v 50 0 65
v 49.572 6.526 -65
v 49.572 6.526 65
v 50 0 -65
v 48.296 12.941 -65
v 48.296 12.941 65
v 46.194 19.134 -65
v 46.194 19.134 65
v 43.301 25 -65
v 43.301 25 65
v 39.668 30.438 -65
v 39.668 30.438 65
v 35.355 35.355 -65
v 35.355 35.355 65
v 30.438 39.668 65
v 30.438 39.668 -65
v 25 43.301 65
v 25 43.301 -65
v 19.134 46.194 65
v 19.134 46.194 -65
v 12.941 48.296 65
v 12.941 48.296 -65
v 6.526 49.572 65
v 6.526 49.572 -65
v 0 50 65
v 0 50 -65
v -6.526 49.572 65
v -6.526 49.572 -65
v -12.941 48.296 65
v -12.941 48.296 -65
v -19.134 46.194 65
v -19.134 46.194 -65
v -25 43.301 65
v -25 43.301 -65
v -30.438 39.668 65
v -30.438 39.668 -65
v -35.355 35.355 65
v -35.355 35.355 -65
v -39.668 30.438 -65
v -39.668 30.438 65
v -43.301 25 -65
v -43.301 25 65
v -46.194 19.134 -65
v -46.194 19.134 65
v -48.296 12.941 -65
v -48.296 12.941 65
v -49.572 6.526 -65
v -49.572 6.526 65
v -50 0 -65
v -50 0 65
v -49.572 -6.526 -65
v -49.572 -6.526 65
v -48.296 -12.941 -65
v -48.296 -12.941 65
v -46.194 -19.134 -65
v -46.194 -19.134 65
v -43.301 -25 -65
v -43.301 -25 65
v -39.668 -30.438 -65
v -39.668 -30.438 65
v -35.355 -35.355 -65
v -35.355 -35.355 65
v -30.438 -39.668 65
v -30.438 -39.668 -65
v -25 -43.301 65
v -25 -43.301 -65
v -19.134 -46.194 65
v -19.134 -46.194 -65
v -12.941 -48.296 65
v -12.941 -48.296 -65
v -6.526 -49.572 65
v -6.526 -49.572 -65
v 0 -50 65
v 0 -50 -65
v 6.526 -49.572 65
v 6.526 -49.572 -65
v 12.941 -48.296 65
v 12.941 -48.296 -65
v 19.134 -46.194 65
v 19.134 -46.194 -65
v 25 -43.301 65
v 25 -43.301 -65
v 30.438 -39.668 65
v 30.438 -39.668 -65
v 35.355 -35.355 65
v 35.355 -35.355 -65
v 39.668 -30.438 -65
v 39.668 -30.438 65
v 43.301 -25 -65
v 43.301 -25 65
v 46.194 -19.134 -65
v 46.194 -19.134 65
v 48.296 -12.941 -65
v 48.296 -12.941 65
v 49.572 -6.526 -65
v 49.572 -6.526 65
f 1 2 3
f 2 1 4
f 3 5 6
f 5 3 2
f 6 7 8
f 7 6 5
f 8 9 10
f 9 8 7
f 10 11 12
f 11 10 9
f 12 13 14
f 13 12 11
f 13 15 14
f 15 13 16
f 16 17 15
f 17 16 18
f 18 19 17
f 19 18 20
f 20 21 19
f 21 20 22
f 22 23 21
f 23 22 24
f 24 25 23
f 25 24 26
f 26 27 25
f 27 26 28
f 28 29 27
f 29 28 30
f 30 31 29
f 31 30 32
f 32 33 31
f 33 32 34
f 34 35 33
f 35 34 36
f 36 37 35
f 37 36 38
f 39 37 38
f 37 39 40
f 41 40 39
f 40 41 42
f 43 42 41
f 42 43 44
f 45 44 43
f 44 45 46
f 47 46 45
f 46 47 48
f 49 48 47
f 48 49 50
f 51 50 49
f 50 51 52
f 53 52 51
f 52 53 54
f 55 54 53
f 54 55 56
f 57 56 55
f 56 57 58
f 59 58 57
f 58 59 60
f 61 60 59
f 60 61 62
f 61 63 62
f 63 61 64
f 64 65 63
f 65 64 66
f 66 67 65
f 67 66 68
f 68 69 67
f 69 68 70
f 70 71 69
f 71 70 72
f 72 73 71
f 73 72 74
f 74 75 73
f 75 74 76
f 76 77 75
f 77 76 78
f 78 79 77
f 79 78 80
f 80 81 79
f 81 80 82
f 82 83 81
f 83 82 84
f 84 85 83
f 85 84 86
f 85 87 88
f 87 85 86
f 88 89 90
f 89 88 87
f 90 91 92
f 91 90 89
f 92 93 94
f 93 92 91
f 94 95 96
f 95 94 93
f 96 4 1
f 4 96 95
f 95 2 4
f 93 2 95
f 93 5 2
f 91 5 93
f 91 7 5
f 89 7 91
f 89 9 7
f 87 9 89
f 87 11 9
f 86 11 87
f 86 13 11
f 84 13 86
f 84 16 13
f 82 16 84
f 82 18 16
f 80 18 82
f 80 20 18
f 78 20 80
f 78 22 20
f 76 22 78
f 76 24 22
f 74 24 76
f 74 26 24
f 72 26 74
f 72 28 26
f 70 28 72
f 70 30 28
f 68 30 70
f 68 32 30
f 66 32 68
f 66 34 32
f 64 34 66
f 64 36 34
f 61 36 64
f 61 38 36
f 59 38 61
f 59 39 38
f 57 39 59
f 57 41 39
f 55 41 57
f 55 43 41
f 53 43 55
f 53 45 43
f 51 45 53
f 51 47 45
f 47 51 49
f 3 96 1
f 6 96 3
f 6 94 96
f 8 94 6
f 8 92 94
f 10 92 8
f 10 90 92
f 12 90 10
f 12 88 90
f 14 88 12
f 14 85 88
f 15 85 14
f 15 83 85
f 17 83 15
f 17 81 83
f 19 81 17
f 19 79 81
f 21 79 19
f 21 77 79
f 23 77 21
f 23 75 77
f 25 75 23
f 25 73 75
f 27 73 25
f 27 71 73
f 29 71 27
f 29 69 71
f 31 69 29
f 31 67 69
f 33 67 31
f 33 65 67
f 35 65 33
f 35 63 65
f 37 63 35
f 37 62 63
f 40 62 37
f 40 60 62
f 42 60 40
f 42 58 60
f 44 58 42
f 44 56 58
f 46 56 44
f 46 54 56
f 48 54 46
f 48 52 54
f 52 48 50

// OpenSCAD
// ========================================
// a cylinder with radius 50 mm and height 130 mm
// NeuroCAD canonical IR; dimensions are millimetres
// ========================================
$fn = 48;

cylinder(r=50, h=130, center=true);
